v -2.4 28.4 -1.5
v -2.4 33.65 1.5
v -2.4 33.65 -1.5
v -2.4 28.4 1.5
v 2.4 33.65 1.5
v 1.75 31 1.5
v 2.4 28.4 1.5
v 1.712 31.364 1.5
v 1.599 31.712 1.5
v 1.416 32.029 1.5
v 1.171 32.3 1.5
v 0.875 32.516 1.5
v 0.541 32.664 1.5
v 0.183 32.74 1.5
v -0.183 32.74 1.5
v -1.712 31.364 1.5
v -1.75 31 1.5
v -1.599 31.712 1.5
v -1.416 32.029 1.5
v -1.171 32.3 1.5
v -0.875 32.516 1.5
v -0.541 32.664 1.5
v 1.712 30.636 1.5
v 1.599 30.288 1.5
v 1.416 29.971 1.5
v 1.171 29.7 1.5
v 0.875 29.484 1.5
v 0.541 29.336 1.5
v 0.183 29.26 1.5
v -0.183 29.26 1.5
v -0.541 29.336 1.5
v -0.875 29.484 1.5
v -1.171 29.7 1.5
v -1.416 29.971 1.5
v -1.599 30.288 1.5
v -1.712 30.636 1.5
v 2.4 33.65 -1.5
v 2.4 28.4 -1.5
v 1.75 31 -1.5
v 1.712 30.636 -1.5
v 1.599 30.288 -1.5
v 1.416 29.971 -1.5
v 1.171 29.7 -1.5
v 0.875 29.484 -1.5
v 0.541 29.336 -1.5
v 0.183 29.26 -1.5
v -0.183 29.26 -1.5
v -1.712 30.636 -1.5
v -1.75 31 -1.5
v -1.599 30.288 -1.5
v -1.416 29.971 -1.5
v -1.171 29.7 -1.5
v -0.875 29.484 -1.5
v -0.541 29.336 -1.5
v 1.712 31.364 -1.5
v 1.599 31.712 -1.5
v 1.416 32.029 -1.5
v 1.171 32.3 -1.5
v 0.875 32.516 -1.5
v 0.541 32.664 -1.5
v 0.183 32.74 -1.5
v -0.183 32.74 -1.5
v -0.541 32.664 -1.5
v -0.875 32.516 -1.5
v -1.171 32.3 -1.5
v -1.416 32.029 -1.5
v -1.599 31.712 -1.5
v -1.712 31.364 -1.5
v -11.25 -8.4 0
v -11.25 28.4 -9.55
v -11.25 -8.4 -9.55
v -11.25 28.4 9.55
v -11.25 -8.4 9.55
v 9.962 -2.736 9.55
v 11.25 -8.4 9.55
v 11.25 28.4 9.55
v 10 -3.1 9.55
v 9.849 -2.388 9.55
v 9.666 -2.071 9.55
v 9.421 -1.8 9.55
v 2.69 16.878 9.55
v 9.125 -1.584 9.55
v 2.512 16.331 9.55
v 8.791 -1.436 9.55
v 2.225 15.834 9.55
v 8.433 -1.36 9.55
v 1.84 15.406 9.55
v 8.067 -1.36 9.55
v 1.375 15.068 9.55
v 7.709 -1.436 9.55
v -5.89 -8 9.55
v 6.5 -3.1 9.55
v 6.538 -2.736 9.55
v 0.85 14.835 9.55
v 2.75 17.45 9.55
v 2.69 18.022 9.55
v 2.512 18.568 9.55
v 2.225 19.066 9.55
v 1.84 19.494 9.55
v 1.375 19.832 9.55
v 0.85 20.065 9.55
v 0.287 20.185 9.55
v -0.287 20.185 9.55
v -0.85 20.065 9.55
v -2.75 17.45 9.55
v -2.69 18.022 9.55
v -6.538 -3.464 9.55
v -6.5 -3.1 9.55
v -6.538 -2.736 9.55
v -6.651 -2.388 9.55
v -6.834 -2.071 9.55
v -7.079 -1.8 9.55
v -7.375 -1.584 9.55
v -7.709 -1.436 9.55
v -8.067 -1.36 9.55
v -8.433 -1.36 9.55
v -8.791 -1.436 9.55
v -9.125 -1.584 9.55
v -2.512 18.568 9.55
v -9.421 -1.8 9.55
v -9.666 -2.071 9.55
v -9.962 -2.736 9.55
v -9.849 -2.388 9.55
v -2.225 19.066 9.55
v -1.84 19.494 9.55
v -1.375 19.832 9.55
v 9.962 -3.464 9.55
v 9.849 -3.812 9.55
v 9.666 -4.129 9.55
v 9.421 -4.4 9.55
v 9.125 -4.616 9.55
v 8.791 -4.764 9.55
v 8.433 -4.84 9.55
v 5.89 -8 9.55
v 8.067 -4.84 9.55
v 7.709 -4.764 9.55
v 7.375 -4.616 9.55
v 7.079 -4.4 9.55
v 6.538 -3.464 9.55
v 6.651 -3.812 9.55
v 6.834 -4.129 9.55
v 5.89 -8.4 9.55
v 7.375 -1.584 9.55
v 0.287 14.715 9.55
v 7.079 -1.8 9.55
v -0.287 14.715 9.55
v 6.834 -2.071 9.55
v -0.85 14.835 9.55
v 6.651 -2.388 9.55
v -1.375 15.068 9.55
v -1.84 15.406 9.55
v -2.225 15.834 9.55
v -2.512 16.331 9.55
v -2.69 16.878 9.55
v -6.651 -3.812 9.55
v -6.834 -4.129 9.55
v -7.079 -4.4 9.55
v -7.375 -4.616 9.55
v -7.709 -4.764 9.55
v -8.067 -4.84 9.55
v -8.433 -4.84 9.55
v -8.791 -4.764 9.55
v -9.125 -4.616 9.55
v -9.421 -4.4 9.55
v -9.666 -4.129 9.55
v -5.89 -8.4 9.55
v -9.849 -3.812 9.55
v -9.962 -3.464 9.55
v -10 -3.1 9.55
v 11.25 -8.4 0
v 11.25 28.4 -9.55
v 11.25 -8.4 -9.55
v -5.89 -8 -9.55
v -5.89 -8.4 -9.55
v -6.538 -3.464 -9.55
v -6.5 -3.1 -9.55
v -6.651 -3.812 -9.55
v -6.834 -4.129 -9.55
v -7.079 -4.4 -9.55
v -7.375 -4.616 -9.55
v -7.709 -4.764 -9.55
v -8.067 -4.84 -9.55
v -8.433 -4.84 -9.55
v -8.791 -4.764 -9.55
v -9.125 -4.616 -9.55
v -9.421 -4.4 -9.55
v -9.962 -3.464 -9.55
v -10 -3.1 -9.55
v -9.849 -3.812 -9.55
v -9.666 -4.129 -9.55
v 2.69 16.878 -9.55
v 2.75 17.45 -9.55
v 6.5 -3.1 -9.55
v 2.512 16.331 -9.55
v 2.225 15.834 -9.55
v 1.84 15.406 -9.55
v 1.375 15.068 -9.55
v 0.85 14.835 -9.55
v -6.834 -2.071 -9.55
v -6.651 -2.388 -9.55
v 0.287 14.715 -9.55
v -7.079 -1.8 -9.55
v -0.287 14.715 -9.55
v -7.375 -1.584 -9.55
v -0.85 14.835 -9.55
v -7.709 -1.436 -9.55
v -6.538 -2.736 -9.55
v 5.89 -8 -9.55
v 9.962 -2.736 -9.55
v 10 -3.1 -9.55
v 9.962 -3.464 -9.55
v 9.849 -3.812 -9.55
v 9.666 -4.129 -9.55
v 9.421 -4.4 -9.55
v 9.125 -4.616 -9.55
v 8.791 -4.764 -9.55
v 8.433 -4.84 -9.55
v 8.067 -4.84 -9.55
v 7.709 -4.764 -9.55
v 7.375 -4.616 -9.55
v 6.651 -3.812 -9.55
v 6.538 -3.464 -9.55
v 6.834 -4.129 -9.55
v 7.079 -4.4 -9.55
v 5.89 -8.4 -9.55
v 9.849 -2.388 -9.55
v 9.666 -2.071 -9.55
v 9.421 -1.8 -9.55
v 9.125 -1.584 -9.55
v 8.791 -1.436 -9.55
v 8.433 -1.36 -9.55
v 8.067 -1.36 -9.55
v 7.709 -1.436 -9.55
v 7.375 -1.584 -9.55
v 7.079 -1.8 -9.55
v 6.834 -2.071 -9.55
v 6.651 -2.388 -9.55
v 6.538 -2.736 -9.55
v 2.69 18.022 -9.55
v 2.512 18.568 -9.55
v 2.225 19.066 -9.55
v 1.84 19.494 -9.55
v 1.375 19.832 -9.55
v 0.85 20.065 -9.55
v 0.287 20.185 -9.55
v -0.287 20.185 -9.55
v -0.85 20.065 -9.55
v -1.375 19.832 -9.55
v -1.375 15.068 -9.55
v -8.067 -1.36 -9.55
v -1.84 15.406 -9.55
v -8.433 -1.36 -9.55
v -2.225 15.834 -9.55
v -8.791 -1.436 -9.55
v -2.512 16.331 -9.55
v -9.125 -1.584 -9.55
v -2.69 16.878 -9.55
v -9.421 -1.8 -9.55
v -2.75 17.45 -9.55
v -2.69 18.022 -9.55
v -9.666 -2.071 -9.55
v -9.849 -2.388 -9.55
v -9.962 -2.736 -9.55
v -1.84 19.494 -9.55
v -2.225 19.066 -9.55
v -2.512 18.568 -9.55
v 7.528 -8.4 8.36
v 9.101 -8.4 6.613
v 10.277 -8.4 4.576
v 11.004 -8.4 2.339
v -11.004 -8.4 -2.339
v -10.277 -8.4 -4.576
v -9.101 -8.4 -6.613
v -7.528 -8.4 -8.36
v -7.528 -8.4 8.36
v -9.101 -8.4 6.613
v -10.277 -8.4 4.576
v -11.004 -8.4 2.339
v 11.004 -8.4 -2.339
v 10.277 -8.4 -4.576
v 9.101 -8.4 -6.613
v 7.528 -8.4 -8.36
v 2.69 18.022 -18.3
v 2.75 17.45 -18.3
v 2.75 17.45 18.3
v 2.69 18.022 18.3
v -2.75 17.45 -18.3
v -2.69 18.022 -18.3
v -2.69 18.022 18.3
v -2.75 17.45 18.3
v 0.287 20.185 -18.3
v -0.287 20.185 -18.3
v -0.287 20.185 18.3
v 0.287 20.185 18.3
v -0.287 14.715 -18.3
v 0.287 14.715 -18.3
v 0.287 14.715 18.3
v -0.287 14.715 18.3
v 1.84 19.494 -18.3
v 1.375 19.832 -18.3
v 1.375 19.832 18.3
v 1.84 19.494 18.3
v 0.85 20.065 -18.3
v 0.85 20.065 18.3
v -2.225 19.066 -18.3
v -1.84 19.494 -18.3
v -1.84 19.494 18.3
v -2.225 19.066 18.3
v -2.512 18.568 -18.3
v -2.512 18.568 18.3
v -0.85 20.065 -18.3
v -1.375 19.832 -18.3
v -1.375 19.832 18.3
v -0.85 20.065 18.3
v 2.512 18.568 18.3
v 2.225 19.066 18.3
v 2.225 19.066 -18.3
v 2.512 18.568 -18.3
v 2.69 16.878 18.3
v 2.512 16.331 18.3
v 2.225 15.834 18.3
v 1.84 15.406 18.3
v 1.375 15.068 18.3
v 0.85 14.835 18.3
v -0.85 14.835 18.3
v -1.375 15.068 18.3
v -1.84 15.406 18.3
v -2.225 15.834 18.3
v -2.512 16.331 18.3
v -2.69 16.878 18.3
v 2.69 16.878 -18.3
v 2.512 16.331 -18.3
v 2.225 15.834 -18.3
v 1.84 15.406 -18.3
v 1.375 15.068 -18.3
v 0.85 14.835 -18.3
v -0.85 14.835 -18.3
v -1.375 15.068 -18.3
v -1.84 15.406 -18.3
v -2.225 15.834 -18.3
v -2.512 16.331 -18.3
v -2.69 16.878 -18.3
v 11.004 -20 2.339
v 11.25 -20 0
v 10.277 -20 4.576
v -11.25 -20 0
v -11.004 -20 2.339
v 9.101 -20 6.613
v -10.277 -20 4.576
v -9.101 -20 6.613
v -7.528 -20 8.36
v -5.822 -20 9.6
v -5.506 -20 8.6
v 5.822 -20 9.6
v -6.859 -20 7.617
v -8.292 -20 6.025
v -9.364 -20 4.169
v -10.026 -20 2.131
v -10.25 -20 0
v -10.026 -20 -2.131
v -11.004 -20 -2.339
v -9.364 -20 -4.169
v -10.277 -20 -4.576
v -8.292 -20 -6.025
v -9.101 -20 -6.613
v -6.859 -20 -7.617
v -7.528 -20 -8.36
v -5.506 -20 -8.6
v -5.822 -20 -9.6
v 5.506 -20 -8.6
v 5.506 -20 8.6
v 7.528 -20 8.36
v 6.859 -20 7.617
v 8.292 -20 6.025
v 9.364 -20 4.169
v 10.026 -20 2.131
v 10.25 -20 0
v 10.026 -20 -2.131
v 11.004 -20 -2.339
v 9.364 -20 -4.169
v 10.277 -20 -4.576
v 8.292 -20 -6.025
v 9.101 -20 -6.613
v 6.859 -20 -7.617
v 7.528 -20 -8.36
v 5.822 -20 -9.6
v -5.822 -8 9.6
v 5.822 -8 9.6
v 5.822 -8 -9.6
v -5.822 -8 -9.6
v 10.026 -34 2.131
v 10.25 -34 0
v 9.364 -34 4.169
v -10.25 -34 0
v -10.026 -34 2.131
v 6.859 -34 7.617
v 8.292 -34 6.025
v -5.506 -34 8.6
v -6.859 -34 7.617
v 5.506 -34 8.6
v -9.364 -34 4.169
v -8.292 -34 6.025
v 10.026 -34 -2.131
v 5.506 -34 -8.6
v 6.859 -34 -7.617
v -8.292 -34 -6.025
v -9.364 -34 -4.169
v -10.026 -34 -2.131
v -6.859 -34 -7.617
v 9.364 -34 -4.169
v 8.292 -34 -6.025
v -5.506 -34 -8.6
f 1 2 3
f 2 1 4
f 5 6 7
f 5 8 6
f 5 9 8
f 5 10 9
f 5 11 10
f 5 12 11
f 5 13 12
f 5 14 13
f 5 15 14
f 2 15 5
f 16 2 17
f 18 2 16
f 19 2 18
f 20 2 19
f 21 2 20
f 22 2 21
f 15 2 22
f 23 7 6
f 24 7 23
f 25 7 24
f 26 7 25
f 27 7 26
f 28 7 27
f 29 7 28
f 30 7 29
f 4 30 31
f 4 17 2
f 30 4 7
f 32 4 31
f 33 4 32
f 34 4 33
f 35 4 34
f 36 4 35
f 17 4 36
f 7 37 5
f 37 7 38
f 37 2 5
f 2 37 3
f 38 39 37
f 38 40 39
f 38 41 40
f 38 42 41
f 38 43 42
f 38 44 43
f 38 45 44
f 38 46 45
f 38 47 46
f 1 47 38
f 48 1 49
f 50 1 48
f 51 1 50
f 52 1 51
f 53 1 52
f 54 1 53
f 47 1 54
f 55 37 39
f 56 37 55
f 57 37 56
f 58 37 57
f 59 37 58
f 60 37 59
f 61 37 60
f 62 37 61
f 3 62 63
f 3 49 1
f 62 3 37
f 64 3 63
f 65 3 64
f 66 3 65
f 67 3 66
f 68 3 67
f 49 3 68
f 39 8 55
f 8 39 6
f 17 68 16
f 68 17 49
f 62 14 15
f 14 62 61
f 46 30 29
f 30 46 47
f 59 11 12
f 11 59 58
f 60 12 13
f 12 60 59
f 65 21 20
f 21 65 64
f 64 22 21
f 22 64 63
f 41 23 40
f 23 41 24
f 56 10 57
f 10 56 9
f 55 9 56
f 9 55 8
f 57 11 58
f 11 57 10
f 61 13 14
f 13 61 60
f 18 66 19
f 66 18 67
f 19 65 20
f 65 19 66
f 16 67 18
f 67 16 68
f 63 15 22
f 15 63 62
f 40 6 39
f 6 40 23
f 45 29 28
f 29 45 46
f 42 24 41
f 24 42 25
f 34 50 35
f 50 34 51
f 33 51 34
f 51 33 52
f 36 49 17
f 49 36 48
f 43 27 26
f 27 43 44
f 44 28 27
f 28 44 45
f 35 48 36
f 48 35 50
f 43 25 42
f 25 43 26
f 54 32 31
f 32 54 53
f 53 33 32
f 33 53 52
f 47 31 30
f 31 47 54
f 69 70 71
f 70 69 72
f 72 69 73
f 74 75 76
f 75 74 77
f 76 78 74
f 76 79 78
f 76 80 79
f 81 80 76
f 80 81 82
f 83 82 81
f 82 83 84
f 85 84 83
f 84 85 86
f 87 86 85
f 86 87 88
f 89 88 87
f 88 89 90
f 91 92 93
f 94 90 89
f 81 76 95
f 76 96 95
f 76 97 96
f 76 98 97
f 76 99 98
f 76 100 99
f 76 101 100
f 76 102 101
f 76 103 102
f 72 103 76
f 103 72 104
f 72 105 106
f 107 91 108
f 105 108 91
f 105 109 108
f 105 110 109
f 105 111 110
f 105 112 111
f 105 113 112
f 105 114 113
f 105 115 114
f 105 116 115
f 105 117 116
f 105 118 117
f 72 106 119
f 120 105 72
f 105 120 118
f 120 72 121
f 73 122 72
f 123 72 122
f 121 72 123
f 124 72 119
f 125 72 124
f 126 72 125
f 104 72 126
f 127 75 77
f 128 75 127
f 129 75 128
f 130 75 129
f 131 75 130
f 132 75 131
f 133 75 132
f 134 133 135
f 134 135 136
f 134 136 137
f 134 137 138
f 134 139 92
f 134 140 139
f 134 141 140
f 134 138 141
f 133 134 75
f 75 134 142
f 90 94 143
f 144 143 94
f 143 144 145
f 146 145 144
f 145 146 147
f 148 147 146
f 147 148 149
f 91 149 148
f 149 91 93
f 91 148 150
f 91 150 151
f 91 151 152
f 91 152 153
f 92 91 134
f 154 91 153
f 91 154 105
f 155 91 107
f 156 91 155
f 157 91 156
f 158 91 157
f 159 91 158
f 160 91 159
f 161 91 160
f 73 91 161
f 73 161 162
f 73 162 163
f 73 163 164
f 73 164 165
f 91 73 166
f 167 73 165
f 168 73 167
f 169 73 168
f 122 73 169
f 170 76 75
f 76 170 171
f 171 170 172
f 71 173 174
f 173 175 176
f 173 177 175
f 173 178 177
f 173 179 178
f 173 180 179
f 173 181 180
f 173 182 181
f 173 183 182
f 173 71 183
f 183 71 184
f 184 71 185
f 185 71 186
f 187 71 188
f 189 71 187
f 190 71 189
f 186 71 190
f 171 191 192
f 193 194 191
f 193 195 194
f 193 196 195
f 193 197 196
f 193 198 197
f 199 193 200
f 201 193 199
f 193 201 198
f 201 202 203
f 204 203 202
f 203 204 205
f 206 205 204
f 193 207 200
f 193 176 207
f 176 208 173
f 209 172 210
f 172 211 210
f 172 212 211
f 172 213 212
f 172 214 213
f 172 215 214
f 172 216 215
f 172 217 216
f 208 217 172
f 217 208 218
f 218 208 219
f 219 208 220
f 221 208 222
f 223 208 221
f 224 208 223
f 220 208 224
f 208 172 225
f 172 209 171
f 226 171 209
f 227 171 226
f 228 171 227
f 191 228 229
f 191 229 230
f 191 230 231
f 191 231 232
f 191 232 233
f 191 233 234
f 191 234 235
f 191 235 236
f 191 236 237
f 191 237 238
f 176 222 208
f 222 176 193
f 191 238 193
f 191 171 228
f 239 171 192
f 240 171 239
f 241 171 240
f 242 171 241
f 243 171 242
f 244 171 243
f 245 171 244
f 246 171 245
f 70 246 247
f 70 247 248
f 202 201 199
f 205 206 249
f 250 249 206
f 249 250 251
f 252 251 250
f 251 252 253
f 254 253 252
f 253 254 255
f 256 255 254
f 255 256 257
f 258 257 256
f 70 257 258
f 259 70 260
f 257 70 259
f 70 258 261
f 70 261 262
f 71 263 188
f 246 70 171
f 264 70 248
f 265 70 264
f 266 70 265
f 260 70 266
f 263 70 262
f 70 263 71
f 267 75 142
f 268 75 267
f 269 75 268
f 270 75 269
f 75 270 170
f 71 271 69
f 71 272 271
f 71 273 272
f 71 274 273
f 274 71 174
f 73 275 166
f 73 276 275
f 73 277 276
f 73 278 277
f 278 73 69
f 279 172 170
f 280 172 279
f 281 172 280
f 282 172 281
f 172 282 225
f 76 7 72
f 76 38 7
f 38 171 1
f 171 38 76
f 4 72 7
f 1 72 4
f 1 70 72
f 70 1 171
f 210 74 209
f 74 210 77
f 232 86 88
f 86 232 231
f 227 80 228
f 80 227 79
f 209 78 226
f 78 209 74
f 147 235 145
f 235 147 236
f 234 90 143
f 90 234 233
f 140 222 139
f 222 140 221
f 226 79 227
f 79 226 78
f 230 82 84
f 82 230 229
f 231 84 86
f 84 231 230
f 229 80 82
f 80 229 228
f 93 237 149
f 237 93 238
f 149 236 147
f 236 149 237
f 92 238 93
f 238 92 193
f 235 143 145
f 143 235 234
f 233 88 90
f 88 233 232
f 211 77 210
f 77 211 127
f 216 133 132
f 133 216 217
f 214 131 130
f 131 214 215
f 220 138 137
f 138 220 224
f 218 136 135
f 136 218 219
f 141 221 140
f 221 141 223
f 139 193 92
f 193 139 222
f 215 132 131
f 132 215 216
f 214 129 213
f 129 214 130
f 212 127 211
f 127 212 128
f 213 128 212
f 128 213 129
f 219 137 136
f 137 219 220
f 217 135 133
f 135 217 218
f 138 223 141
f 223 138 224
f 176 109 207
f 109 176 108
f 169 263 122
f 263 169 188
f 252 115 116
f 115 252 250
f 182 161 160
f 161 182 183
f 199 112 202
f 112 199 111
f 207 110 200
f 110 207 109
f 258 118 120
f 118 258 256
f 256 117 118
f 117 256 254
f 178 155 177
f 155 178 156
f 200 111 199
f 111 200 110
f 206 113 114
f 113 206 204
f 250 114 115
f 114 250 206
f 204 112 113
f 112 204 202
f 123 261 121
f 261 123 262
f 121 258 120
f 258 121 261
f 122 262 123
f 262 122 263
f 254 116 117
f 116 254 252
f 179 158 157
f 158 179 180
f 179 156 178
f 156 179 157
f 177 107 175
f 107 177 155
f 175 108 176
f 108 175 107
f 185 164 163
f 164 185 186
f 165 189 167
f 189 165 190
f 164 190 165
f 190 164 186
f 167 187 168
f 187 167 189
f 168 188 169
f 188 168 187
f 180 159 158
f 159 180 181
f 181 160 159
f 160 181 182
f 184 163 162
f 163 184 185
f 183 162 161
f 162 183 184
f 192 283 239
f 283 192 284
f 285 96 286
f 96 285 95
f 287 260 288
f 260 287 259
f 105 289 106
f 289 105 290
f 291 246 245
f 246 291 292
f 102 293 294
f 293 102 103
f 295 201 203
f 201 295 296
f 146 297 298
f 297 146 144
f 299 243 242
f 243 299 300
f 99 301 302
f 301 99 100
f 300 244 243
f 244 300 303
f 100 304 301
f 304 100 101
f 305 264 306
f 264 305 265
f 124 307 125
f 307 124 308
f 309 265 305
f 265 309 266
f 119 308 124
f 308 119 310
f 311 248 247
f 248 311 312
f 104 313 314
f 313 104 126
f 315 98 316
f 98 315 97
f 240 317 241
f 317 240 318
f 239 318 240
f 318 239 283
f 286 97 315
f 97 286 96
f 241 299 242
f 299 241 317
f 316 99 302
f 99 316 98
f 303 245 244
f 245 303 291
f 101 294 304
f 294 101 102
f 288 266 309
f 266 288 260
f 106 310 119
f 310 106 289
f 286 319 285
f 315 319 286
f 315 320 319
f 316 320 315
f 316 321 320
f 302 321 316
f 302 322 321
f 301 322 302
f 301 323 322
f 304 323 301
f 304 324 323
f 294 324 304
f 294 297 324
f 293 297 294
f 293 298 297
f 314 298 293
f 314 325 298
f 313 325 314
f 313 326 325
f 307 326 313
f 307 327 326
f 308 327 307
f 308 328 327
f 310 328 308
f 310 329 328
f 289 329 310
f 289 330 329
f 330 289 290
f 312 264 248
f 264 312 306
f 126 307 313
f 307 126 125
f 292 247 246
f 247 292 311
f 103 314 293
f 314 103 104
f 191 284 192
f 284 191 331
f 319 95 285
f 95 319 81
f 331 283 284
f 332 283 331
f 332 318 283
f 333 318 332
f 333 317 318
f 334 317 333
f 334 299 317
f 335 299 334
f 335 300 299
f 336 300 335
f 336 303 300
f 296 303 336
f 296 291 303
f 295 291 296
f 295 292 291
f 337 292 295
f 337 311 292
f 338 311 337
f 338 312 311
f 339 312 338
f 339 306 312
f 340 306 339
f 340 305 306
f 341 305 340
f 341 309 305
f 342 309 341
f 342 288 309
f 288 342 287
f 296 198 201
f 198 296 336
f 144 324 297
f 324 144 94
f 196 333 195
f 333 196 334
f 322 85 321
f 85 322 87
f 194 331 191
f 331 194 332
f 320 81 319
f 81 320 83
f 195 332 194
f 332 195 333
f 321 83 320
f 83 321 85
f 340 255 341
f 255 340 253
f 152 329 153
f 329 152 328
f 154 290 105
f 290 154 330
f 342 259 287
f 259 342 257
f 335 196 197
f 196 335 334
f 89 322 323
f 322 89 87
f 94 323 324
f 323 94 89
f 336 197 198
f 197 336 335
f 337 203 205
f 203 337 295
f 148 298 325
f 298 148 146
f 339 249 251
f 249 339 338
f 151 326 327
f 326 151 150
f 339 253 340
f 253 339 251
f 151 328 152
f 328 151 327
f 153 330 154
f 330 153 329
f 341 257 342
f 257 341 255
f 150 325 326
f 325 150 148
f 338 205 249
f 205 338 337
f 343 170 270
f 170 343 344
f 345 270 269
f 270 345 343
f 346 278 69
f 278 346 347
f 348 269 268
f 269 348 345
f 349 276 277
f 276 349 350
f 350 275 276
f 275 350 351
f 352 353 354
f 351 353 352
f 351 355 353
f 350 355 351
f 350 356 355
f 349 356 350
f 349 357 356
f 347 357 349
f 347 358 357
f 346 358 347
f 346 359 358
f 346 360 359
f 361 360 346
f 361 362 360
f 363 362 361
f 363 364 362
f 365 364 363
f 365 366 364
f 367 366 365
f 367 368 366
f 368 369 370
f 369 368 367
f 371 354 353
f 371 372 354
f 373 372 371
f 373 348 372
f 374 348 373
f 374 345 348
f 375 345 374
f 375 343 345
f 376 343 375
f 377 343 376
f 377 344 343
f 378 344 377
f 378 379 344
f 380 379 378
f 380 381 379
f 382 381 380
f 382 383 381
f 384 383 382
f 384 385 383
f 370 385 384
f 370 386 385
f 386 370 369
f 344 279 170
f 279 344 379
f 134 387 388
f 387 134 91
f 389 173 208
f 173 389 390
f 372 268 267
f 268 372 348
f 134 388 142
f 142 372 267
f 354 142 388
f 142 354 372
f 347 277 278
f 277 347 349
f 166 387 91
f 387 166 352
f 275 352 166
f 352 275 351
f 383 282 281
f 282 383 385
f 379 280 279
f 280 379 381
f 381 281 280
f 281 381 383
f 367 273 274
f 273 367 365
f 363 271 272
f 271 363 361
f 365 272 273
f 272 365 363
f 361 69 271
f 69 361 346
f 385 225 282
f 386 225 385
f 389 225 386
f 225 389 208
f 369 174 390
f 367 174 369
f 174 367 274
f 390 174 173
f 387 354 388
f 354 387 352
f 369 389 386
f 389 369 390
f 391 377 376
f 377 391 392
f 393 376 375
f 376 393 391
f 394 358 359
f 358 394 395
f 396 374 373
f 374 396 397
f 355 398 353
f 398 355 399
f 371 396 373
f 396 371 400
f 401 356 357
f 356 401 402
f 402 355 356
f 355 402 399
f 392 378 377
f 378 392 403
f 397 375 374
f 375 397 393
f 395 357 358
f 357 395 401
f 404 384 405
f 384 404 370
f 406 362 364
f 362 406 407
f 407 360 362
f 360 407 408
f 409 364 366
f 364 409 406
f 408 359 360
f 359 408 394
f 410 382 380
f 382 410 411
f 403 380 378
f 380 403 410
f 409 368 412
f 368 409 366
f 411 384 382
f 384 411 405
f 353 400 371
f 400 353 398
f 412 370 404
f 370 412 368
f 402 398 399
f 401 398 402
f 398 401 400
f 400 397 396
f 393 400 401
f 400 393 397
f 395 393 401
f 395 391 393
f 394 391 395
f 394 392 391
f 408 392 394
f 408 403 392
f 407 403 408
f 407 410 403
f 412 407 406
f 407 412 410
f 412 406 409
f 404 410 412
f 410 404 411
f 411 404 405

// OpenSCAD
// gelber Motor

$fn = 30;

module gelberMotor() {
    hinten();
    mitte();
    vorne();
}

module hinten() {
    difference() {
        cube([22.5,36.8,19.1],center=true);
        translate([8.25,-13.1,0])
        cylinder(d=3.5,h=36.6,center=true);
        translate([-8.25,-13.1,0])
        cylinder(d=3.5,h=36.6,center=true);
    }
    color("white")
    translate([0,7.45,0])
    cylinder(d=5.5,h=36.6,center=true);
    translate([0,21,0])
    difference() {
        cube([4.8,5.3,3],center=true);
        cylinder(d=3.5,h=36.6,center=true);
    }
}

module mitte() {
    difference() {
        rotate([90,0,0])
        translate([0,0,24])
        cylinder(d=22.5,h=12,center=true);
        translate([0,-24,14.1])
        cube([16,16,9],center=true);
        translate([0,-24,-14.1])
        cube([16,16,9],center=true);
    }
}

module vorne() {
    difference() {
        color("lightgray")
        rotate([90,0,0])
        translate([0,0,33])
        cylinder(d=20.5,h=8,center=true);
        translate([0,-33,13.1])
        cube([16,16,9],center=true);
        translate([0,-33,-13.1])
        cube([16,16,9],center=true);
    }
    
    difference() {
        color("gray")
        rotate([90,0,0])
        translate([0,0,40.5])
        cylinder(d=20.5,h=7,center=true);
        translate([0,-40.5,13.1])
        cube([16,16,9],center=true);
        translate([0,-40.5,-13.1])
        cube([16,16,9],center=true);
    }
    
    difference() {
        color("gray")
        rotate([90,0,0])
        translate([0,0,40])
        cylinder(d=9.8,h=4,center=true);
        translate([0,-36,13.1])
        cube([16,16,9],center=true);
        translate([0,-36,-13.1])
        cube([16,16,9],center=true);
    }
}
translate([0,10,0])
gelberMotor();
